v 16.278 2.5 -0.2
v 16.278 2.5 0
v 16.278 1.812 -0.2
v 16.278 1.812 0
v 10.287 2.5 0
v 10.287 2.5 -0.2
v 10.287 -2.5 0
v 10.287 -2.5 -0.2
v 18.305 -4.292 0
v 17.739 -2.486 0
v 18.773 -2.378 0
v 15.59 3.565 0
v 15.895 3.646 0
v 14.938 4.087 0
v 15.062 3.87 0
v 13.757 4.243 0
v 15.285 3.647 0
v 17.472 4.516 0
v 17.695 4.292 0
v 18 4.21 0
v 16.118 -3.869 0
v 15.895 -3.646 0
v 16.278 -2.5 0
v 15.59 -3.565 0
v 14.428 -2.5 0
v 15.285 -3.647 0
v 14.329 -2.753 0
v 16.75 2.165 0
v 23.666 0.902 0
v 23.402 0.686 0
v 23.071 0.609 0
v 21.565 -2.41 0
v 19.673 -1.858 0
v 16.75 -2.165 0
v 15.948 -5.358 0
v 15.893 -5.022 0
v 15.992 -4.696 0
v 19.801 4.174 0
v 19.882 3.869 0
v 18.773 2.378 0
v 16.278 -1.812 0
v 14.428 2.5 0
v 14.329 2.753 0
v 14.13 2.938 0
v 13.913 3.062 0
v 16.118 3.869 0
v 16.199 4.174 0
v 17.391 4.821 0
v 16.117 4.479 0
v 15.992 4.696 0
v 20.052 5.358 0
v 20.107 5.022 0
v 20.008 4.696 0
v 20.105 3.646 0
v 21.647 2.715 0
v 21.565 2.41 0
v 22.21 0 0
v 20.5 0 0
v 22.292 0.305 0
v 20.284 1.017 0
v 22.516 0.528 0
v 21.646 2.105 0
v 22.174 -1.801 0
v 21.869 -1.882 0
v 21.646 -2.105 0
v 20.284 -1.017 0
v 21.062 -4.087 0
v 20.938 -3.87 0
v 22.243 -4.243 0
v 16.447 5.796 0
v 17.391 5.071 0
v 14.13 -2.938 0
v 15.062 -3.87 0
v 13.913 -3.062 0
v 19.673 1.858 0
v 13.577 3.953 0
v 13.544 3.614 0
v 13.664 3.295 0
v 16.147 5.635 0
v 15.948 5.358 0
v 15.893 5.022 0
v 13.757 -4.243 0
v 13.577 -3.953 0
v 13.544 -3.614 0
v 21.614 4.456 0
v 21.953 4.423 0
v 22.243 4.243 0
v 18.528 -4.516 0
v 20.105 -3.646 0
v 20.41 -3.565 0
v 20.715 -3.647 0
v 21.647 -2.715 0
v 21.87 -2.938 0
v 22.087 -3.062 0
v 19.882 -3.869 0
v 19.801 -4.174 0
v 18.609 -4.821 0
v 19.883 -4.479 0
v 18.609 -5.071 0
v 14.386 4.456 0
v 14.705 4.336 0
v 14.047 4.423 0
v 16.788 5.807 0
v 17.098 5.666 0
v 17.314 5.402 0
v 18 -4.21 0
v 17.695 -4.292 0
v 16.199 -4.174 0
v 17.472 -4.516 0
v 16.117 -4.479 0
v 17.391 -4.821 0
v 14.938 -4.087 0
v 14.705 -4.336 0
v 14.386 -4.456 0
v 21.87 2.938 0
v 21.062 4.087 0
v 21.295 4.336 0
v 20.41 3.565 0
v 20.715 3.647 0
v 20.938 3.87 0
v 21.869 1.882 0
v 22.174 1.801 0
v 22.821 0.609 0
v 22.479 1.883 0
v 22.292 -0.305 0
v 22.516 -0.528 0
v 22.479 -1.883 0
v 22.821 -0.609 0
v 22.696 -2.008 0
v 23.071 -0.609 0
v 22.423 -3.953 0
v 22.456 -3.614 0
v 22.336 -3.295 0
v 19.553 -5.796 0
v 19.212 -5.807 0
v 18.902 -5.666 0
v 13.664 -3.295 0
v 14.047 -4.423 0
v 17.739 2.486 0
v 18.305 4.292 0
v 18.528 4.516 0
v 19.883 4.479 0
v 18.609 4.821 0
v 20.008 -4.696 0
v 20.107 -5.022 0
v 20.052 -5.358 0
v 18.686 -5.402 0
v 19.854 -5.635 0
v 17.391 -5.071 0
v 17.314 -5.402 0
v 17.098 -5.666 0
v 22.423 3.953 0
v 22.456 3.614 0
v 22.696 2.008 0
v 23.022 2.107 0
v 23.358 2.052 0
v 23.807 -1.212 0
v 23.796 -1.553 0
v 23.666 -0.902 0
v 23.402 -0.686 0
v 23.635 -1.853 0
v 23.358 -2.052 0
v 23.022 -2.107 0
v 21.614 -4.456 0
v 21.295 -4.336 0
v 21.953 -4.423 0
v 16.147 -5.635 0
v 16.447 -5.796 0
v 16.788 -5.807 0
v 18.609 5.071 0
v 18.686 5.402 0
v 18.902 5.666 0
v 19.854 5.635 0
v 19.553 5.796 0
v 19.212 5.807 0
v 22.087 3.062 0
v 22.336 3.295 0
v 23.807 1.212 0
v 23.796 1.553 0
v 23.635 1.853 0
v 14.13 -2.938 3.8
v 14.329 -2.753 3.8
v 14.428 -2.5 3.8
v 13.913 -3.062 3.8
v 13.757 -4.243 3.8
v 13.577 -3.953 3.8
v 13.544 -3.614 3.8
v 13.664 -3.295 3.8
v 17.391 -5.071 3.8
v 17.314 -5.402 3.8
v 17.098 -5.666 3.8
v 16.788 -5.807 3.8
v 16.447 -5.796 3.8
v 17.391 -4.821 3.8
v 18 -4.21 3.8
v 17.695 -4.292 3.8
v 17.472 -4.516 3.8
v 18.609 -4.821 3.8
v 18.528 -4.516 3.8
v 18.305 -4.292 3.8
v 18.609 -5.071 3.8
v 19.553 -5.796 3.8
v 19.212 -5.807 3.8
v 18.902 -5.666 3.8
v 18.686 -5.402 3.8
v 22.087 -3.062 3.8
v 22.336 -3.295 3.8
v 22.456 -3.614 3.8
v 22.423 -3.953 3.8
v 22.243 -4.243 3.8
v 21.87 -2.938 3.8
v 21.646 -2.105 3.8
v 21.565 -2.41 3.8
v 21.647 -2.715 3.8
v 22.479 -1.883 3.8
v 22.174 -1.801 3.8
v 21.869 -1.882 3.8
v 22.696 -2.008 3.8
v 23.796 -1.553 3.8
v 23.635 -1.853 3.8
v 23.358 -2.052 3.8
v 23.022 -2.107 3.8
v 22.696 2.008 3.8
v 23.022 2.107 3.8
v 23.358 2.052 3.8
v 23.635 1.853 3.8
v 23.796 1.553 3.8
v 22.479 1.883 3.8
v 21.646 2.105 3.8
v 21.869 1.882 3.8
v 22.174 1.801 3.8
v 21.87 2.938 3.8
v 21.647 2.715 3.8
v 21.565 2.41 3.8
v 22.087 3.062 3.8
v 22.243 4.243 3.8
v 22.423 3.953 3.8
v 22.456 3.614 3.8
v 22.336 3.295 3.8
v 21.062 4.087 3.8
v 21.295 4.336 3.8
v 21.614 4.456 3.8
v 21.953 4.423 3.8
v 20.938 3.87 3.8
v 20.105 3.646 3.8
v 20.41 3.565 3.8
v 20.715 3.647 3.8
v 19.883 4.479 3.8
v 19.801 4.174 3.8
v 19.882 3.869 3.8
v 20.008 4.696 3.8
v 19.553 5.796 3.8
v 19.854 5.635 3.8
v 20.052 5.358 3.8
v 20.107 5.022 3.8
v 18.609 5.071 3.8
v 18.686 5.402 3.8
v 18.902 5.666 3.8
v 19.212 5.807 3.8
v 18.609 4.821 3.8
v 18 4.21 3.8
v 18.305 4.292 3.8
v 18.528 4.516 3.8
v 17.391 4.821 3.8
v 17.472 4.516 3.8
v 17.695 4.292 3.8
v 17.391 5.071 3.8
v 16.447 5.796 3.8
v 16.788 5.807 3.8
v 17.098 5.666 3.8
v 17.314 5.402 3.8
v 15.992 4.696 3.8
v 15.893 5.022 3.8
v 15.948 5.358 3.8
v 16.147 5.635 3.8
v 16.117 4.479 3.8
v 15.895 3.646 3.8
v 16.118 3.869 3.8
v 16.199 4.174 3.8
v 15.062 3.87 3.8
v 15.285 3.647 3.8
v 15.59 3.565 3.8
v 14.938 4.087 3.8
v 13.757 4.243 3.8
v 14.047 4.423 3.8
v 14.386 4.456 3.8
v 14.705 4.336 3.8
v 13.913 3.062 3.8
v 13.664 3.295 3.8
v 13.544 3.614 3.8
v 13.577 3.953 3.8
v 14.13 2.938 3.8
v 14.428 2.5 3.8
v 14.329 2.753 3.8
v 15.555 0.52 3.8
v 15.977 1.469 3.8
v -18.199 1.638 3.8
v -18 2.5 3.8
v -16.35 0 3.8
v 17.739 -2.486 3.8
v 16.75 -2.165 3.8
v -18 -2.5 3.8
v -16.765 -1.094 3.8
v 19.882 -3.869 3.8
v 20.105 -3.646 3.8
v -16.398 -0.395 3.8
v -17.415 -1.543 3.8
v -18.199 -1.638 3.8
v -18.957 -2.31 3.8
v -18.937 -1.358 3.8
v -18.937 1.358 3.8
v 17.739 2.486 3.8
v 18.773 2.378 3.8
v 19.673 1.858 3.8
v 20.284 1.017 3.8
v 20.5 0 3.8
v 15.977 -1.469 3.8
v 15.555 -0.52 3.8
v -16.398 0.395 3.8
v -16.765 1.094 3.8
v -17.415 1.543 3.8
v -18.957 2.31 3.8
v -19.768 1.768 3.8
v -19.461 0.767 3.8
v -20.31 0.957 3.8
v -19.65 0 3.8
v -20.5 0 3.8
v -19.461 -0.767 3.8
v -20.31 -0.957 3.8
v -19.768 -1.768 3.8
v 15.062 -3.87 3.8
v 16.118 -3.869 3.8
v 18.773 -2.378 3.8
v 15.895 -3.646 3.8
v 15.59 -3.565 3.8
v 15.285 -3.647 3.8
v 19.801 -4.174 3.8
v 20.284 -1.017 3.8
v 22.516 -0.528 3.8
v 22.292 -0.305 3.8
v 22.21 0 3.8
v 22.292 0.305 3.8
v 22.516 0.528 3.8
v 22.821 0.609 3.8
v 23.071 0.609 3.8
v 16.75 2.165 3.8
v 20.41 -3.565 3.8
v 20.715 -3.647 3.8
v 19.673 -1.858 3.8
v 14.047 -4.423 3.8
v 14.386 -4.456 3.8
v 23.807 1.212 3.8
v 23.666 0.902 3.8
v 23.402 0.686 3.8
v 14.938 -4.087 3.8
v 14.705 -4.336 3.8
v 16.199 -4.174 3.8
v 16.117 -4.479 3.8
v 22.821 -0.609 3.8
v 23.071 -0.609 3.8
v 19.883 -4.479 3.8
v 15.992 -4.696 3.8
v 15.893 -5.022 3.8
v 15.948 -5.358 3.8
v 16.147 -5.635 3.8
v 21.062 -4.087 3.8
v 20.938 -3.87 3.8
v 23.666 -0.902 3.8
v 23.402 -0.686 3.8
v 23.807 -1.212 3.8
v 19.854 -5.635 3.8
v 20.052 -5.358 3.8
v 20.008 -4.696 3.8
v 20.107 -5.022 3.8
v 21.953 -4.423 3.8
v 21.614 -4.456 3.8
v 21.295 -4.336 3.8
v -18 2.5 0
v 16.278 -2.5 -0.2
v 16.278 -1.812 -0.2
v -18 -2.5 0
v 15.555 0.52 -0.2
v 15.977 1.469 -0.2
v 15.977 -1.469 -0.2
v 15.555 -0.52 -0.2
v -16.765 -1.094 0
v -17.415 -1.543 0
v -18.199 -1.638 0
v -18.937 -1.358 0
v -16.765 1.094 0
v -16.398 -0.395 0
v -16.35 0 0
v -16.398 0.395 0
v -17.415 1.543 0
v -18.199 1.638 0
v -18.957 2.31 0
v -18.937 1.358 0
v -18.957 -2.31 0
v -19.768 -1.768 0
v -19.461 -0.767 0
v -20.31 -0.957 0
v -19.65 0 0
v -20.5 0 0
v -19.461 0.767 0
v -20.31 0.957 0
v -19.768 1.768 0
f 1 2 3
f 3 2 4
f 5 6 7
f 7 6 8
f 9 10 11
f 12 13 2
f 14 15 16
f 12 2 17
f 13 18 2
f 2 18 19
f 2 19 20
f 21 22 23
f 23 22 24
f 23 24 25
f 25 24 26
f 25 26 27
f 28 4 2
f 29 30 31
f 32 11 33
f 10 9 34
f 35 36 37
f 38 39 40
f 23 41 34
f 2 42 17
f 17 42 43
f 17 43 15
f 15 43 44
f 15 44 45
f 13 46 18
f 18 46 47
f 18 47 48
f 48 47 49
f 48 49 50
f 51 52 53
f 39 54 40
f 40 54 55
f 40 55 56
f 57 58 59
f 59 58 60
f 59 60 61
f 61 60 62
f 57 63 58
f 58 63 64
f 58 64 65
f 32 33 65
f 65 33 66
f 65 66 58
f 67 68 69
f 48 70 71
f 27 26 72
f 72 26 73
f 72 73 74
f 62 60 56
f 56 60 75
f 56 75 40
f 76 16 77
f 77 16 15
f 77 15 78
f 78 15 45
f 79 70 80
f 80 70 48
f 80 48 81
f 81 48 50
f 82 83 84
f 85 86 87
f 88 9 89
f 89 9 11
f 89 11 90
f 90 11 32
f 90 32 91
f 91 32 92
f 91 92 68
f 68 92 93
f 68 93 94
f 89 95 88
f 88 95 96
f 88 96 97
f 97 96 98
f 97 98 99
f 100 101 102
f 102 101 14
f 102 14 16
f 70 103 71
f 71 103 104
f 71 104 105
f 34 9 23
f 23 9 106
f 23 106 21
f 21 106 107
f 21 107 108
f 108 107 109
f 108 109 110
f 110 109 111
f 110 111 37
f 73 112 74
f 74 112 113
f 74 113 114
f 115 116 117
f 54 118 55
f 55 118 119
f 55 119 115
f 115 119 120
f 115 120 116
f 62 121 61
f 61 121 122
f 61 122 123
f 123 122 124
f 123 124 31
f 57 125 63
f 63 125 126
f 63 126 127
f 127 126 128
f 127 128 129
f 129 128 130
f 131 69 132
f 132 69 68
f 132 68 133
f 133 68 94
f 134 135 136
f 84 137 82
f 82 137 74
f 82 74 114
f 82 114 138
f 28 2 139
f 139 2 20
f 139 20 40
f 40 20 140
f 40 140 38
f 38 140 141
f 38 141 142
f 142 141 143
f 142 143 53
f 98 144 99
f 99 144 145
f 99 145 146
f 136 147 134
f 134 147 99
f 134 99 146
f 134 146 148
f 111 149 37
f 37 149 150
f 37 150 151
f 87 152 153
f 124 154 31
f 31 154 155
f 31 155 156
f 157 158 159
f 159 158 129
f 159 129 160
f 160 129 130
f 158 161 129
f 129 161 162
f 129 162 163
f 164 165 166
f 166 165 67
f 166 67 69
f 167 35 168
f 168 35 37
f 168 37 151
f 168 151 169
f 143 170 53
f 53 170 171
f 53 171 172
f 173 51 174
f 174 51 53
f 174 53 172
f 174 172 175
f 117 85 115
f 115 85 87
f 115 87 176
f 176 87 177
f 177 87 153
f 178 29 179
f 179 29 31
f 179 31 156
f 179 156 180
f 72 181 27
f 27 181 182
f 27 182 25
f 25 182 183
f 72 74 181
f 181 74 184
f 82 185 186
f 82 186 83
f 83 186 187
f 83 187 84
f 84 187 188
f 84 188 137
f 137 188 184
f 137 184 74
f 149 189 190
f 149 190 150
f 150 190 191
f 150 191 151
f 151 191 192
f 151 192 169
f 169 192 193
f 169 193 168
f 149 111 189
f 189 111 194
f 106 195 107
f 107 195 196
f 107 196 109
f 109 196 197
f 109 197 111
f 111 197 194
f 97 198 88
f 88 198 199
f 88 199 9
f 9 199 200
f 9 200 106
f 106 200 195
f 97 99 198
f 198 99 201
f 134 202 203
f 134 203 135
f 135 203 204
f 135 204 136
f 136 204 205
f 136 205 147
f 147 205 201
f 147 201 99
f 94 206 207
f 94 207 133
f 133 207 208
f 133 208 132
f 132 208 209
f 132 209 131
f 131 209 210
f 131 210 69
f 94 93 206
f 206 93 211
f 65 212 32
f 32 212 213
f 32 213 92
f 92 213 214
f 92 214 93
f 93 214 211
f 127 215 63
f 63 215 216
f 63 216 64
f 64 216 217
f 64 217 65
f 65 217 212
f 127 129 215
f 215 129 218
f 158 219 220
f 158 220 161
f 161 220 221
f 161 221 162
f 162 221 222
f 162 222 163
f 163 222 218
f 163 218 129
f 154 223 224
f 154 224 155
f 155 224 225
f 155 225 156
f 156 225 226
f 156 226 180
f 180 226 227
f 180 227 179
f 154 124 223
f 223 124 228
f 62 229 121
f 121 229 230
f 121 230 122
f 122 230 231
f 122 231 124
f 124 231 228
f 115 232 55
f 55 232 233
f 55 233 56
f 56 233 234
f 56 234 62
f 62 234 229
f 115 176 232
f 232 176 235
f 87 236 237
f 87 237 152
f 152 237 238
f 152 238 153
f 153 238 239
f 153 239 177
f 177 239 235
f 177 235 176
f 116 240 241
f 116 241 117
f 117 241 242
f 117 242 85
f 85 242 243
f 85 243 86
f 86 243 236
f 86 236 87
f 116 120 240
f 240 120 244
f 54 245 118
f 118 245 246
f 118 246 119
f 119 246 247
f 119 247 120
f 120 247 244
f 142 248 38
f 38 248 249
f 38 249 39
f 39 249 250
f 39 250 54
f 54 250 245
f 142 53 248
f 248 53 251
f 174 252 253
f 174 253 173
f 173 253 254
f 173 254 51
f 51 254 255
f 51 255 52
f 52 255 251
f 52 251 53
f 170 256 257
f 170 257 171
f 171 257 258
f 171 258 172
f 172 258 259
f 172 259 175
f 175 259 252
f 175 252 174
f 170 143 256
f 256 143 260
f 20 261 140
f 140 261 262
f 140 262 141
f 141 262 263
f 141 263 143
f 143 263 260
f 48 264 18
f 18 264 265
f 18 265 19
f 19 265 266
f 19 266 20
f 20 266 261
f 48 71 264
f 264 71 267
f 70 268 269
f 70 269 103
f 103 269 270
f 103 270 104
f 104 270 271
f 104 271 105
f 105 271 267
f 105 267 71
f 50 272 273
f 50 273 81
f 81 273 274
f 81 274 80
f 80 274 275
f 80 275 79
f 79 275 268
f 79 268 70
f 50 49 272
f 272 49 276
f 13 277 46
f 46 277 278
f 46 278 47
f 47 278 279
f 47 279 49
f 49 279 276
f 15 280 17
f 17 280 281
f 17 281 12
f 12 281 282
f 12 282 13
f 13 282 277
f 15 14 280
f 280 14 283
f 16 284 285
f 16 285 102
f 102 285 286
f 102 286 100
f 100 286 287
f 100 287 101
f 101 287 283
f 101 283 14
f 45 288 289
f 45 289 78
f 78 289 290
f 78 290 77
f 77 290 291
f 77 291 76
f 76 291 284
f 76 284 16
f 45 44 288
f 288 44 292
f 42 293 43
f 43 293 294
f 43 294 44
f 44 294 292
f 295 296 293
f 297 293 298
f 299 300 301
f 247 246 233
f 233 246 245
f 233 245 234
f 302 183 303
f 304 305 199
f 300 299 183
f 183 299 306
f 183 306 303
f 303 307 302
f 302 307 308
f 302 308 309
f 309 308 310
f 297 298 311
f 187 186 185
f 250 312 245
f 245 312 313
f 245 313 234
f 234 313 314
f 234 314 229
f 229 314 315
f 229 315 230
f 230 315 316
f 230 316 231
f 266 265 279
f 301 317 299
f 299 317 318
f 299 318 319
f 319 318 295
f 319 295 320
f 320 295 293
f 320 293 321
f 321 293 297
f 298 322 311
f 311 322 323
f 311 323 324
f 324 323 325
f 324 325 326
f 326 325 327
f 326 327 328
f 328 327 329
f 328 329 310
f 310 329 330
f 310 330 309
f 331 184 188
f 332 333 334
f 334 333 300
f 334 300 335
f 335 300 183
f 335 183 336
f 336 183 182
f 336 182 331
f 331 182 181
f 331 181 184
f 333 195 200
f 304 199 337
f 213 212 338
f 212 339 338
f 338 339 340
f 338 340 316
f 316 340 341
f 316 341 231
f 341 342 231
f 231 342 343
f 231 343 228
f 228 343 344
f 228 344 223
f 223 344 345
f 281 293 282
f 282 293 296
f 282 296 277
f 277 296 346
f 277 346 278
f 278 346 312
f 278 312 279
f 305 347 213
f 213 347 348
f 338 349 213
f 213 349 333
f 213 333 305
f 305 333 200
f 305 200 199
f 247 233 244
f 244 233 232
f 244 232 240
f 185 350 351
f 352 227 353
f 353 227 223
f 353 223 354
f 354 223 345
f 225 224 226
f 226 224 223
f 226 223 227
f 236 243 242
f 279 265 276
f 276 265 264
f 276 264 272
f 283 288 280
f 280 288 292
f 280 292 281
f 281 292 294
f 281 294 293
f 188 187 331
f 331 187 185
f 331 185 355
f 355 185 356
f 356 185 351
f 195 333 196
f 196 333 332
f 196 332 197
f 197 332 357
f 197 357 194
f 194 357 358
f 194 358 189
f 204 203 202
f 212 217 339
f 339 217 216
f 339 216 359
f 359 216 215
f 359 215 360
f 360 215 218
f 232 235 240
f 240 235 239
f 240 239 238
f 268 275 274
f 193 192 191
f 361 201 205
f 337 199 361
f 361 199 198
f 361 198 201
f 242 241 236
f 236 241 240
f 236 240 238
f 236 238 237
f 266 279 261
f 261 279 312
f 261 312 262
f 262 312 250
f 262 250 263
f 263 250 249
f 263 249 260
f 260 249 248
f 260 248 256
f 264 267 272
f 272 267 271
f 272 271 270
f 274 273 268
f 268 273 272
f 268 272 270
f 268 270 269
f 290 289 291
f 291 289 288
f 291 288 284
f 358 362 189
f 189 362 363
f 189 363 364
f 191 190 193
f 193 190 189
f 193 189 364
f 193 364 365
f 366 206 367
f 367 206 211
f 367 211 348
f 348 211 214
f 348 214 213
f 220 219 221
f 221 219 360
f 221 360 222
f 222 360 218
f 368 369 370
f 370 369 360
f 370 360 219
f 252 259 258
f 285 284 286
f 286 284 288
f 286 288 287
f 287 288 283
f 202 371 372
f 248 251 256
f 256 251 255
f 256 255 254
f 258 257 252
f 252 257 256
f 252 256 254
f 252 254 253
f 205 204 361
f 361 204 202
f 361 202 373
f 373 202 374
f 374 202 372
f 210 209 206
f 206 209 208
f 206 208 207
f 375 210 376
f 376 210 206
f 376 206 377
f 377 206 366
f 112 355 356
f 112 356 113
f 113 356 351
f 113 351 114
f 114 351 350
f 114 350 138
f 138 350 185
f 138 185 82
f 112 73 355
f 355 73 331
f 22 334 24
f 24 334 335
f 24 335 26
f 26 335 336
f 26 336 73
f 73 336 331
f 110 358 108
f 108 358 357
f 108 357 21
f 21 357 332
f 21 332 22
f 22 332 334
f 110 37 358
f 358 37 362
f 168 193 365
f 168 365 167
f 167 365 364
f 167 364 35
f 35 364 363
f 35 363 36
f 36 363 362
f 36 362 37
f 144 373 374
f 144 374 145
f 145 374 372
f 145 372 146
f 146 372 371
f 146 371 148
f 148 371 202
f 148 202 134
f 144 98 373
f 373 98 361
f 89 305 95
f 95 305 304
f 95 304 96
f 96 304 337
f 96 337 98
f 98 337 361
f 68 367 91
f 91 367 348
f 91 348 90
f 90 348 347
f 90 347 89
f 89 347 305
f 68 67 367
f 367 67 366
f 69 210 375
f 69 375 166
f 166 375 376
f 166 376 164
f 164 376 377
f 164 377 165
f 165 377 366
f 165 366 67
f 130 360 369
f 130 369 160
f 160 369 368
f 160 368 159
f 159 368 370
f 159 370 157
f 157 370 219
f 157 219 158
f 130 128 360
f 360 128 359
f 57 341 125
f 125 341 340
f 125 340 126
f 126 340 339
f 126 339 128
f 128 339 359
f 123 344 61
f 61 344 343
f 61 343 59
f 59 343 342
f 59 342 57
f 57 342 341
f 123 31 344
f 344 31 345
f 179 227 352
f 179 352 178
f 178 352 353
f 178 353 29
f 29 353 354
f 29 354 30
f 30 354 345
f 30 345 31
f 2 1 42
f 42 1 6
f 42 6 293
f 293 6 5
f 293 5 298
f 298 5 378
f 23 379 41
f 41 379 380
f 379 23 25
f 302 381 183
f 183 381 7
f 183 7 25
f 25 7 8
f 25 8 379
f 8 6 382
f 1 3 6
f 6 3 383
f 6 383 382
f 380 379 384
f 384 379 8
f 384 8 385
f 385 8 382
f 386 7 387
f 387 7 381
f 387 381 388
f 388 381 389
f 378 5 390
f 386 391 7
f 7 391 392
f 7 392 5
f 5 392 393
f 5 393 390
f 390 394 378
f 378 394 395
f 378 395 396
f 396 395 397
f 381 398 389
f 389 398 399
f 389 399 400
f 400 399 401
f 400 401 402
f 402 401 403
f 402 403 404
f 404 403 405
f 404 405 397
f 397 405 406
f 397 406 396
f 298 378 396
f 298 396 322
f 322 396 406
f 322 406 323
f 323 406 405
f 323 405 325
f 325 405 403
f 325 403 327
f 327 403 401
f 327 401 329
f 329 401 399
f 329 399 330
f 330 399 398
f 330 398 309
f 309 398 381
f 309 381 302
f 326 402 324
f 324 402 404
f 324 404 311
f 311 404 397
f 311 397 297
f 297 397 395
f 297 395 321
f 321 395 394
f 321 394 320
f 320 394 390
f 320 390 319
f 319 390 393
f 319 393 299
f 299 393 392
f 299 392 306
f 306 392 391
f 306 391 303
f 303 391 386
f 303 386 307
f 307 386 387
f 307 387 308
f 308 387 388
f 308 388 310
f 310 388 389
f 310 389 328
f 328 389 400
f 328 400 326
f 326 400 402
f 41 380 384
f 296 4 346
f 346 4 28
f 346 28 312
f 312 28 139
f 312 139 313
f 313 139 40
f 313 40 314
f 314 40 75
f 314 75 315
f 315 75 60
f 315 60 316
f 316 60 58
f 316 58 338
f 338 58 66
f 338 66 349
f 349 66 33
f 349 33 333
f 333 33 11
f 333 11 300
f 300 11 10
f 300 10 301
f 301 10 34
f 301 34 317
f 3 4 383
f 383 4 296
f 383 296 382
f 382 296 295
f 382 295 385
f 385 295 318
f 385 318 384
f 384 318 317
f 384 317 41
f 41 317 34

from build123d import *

# Parameters (mm, degrees)
SKETCH1_R           = 1.65
BOSS_EXTRUDE1_DEPTH = 3.8
CUT_EXTRUDE1_DEPTH  = 26.02878343
CIRPATTERN1_COUNT   = 12
SKETCH3_W           = 5.990659071
SKETCH3_H           = 5
BOSS_EXTRUDE2_DEPTH = 4
SKETCH4_R           = 2.5
CUT_EXTRUDE2_DEPTH  = 25.846159393


with BuildPart() as part:
    # Sketch1 → Boss-Extrude1 (new body)
    with BuildSketch(Plane.XY):
        with BuildLine():
            Line((-18, 2.5), (12.545643943, 2.5))
            ThreePointArc((12.545643943, 2.5), (24, 0), (12.545643943, -2.5))
            Line((12.545643943, -2.5), (-18, -2.5))
            ThreePointArc((-18, -2.5), (-20.5, 0), (-18, 2.5))
        make_face()
        with Locations(Location((-18, 0, 0), (0, 0, 180))):
            Circle(SKETCH1_R, mode=Mode.SUBTRACT)
    extrude(amount=BOSS_EXTRUDE1_DEPTH)

    # Sketch2 → Cut-Extrude1 (cut, through all)
    with BuildSketch(Plane.XY.offset(3.8)):
        with BuildLine():
            Line((20.008070513, 4.695554958), (19.882890915, 4.479152397))
            ThreePointArc((19.882890915, 4.479152397), (19.821496871, 4.016588638), (20.105, 3.64596695))
            ThreePointArc((20.105, 3.64596695), (20.567719361, 3.585756883), (20.937614306, 3.870207564))
            Line((20.937614306, 3.870207564), (21.062434622, 4.086817556))
            ThreePointArc((21.062434622, 4.086817556), (21.614093727, 4.455903836), (22.242640687, 4.242640687))
            ThreePointArc((22.242640687, 4.242640687), (21.131352886, 5.423662295), (19.552914271, 5.795554958))
            ThreePointArc((19.552914271, 5.795554958), (20.051879055, 5.357848898), (20.008070513, 4.695554958))
        make_face()
    cut_extrude1 = extrude(amount=-CUT_EXTRUDE1_DEPTH, mode=Mode.SUBTRACT)

    # CirPattern1: Cut-Extrude1 ×12 about axis
    cirpattern1_axis = Axis((18, 0, 0), (0, 0, 1))
    for i in range(1, CIRPATTERN1_COUNT):
        add(cut_extrude1.rotate(cirpattern1_axis, i * 360 / CIRPATTERN1_COUNT), mode=Mode.SUBTRACT)

    # Sketch3 → Boss-Extrude2 (add)
    with BuildSketch(Plane.XY.offset(3.8)):
        with Locations((13.282390893, 0)):
            Rectangle(SKETCH3_W, SKETCH3_H)
    extrude(amount=-BOSS_EXTRUDE2_DEPTH)

    # Sketch4 → Cut-Extrude2 (cut, through all)
    with BuildSketch(Plane.XY.offset(3.8)):
        with Locations((18, 0)):
            Circle(SKETCH4_R)
    extrude(amount=-CUT_EXTRUDE2_DEPTH, mode=Mode.SUBTRACT)


solid = part.part
